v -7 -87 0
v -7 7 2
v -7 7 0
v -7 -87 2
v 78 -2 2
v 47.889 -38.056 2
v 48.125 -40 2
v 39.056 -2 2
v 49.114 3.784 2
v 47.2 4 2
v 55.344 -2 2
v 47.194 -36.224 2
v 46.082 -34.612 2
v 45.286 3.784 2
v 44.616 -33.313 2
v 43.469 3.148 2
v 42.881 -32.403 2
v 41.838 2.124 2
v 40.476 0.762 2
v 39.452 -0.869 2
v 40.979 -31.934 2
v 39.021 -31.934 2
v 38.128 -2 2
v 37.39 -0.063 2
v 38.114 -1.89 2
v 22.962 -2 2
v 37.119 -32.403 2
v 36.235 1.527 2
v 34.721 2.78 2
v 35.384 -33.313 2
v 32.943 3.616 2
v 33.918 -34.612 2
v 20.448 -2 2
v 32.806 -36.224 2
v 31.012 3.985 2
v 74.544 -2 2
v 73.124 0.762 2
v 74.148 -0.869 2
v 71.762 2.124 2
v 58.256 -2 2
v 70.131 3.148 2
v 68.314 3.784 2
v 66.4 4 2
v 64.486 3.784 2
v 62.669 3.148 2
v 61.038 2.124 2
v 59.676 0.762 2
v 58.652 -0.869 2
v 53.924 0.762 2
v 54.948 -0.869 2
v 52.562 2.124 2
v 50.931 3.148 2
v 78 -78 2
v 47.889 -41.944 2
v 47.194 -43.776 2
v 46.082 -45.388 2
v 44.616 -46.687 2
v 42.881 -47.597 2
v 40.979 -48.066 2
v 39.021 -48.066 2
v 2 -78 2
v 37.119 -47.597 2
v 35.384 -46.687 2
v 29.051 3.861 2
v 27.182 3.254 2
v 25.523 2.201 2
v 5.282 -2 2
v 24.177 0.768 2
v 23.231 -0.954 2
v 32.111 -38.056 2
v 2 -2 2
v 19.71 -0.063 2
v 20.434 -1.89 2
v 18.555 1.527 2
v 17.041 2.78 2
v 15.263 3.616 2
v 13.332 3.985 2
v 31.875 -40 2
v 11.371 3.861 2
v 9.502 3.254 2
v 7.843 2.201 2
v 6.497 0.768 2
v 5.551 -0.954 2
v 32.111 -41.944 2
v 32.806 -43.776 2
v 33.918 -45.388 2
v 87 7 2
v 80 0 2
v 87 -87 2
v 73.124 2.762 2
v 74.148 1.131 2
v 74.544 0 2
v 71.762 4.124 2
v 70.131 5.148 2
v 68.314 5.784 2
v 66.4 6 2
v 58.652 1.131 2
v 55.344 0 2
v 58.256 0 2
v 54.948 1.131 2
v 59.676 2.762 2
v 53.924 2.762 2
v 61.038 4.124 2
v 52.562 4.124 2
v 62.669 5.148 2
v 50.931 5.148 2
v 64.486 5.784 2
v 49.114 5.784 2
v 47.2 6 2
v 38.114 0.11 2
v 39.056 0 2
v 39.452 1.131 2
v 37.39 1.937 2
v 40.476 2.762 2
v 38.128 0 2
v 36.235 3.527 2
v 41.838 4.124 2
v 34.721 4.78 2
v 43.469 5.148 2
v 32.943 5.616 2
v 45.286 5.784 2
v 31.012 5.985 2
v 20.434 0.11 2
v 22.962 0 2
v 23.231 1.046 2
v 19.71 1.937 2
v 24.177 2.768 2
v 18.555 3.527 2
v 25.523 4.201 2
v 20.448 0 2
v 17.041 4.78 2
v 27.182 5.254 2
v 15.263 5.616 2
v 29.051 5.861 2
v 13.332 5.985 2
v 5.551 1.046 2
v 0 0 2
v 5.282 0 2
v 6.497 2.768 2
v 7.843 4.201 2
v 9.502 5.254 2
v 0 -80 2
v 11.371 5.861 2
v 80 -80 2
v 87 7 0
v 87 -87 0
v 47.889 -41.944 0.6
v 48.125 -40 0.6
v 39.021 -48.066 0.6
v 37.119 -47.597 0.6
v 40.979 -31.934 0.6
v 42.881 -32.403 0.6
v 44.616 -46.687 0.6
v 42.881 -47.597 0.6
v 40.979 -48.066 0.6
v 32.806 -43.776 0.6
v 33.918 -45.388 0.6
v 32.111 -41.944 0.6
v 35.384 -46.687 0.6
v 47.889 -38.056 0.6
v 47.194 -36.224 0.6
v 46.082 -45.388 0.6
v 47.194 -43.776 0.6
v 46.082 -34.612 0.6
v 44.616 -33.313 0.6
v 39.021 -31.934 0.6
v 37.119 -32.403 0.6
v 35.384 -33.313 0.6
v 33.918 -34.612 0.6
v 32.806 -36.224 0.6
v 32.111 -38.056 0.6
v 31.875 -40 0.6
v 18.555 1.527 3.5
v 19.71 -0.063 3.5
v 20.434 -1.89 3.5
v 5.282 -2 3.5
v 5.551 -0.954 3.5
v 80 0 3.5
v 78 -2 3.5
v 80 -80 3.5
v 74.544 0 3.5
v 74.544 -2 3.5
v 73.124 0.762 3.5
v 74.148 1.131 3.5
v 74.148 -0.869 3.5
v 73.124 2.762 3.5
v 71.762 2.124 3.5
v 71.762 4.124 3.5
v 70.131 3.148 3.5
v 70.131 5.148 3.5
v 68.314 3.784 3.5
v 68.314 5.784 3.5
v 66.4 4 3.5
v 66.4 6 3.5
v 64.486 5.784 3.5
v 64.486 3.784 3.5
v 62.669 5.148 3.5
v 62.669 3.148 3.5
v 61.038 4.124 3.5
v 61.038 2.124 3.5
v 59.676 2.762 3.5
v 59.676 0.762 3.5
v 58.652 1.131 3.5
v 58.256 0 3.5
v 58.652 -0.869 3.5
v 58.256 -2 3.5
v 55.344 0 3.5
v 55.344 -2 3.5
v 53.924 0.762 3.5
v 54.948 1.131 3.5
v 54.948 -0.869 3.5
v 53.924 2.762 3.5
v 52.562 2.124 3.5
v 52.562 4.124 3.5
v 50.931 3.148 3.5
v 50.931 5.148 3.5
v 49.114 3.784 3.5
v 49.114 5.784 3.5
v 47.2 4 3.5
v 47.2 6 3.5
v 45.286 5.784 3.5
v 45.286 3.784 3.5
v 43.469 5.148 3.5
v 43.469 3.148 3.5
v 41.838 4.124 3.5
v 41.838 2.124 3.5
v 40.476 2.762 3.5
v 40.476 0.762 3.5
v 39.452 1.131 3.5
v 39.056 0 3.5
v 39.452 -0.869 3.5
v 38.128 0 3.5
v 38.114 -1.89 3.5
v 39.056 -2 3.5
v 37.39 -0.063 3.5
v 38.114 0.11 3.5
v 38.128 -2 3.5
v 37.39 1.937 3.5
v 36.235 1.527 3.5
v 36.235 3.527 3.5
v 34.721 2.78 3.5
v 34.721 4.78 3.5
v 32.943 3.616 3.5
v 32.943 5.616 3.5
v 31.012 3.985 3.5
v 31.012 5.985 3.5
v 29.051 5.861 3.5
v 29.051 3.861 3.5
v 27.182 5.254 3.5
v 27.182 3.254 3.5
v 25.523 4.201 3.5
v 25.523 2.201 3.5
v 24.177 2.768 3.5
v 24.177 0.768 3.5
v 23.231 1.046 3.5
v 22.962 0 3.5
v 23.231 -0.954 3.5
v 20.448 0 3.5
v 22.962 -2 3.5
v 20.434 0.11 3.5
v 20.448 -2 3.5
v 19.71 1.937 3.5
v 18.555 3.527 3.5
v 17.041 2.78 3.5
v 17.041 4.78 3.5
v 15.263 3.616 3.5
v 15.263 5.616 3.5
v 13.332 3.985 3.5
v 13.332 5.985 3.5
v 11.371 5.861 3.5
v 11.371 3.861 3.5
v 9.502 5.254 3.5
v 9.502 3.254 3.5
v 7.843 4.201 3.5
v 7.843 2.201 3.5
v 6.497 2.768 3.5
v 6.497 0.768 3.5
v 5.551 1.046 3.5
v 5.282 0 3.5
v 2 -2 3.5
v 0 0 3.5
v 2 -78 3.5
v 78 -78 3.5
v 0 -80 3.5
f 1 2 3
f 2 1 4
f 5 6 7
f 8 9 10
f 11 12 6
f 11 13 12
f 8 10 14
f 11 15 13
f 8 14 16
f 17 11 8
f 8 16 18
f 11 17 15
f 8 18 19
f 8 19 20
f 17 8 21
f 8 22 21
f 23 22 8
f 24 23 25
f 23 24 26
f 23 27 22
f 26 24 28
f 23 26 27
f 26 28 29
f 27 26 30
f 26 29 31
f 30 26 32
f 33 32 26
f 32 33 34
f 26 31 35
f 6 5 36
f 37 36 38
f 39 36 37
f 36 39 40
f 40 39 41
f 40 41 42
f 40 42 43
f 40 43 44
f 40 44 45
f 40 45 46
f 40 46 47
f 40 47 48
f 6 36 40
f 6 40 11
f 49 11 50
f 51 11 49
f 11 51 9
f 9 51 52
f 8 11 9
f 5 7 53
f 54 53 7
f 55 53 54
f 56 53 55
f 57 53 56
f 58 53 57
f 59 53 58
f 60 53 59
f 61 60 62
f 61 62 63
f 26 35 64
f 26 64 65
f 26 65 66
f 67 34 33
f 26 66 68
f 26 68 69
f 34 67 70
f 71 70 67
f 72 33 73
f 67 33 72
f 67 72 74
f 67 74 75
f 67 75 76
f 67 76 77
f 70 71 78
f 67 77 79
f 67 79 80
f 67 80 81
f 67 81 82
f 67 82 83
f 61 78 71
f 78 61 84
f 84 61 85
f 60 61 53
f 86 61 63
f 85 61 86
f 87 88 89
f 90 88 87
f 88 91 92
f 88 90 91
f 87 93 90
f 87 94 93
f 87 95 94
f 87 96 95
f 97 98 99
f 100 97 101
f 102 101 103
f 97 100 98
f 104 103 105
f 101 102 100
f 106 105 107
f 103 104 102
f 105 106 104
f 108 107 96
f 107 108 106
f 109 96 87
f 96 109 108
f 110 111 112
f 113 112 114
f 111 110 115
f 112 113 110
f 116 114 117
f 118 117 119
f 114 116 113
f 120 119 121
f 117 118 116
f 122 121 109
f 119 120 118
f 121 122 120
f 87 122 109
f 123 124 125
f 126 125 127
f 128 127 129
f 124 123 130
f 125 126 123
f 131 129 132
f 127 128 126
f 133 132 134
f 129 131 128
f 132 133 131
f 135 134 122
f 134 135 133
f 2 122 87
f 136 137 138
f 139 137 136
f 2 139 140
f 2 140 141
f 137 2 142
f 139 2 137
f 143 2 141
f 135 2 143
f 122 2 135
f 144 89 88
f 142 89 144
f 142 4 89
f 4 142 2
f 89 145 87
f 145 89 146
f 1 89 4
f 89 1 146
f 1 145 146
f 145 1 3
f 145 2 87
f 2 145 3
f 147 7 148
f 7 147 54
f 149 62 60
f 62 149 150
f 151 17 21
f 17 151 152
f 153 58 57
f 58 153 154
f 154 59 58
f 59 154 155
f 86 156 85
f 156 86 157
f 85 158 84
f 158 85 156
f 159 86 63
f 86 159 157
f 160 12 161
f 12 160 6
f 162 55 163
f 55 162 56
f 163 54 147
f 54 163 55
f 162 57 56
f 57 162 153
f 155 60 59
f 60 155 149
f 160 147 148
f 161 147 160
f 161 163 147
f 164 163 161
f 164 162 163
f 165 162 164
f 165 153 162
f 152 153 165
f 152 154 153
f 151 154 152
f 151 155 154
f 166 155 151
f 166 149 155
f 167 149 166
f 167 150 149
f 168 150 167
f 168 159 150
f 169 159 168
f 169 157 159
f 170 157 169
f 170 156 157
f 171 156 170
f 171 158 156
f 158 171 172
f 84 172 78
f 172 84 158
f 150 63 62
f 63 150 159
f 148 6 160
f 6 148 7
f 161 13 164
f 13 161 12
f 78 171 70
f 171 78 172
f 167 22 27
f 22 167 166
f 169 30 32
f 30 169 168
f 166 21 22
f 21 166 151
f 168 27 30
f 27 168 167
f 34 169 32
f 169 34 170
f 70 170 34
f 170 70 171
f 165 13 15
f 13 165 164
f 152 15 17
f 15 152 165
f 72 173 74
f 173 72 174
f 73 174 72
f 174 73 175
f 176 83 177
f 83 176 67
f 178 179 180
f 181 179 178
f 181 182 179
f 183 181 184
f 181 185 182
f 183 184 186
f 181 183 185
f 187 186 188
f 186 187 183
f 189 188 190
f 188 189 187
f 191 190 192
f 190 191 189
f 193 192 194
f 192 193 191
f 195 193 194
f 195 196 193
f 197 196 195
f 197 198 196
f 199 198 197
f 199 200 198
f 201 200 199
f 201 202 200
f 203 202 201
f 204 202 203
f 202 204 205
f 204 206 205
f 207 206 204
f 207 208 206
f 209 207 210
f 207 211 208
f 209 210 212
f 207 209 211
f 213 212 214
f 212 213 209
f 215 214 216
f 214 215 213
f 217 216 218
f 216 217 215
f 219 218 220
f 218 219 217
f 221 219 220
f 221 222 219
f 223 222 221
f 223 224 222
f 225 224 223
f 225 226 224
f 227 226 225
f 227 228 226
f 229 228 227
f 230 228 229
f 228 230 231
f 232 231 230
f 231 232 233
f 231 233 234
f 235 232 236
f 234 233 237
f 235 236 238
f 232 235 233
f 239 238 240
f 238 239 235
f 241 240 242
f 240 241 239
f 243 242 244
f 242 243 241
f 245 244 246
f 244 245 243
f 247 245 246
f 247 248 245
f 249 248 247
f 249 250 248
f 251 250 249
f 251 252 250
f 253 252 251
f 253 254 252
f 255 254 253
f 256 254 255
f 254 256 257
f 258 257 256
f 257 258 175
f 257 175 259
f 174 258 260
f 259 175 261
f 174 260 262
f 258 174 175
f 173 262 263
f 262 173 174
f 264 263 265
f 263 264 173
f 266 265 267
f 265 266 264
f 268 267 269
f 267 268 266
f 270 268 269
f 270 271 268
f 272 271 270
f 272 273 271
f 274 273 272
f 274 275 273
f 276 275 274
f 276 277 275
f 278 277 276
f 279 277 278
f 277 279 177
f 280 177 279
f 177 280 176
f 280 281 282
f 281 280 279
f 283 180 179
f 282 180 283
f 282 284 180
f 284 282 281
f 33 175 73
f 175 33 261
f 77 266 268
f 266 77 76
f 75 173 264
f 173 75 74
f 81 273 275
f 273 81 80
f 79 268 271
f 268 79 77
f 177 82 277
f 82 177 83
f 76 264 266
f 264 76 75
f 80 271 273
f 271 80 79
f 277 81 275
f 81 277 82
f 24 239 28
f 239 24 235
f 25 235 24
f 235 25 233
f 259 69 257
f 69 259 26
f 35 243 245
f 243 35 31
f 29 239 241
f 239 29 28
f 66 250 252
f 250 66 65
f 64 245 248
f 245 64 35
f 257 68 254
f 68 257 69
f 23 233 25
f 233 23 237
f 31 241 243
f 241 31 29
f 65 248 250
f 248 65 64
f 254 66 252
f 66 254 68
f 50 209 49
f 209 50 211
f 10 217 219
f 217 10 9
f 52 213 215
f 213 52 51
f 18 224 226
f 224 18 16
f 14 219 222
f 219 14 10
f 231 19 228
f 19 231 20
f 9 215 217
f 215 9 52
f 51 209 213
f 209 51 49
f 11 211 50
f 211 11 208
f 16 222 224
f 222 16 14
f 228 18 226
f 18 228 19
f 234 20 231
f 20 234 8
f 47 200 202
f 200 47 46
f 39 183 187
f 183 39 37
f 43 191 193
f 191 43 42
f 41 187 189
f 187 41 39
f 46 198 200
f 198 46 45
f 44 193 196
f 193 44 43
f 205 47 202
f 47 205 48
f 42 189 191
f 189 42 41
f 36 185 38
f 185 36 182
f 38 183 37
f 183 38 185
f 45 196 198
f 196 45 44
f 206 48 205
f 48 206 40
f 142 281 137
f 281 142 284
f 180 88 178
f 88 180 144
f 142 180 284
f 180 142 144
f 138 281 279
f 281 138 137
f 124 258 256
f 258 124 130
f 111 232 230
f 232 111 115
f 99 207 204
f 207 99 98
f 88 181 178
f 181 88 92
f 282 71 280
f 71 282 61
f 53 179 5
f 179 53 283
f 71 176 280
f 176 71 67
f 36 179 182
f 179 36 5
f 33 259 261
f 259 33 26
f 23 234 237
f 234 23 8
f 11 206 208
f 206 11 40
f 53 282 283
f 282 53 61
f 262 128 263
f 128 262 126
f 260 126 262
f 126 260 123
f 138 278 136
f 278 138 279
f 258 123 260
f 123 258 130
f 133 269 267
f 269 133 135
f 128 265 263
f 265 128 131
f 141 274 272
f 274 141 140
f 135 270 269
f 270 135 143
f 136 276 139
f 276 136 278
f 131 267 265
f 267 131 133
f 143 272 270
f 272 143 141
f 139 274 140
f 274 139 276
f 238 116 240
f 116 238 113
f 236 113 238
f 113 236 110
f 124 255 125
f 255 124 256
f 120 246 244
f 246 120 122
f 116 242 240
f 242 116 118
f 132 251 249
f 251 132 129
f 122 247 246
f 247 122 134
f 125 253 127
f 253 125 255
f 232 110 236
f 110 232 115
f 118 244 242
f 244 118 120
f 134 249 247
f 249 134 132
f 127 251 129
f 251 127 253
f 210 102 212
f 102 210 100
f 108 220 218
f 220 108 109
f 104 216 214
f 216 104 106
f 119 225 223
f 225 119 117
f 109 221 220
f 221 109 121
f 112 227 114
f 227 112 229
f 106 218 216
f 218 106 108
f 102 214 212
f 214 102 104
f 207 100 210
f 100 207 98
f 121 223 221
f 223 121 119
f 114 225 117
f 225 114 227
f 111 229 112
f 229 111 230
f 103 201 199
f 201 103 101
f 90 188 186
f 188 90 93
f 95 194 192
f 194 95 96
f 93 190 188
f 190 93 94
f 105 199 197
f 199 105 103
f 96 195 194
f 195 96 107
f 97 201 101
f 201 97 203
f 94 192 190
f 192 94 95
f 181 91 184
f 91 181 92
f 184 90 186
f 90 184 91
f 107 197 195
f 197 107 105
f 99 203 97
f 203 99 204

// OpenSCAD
length = 75;
width = 75;
height = 2;
rimHeight = 1.5;
rimThickness = 2;
notchLength = 25;
//Based on washer size:
washerDiameter = 16.25;
washerHeight = 1.4;
rimPadding = 1;
totalHeight = height + rimHeight;

totalLength = length + rimThickness * 2 + rimPadding;
totalWidth = width + rimThickness * 2 + rimPadding;
extraLidForCircles = 7;

prestigeTokenDiameter = 15.18 + .5;
prestigeTokenOffset = 4;
prestigeTokenHeight = 2.19 + .5;

moneyTokenDiameter = 16.7 + .5;
moneyTokenOffset = 4;
moneyTokenHeight = 2.05 + .5;

chiefTokenDiameter = 31.5 + .5;
chiefTokenOffset = 4;
mirror([0, 1, 0])
union()
{
    difference() {
        translate([-extraLidForCircles, -extraLidForCircles, 0])
            cube([totalLength + 2 * extraLidForCircles, totalWidth + 2 * extraLidForCircles, height]);
        translate([totalLength/2, totalWidth/2, height - washerHeight])
            cylinder(washerHeight, d=washerDiameter);
    }
    
    difference() {
        translate([0, 0, height])
            cube([totalLength, totalWidth, rimHeight]);
        translate([rimThickness, rimThickness, height])
            cube([length + rimPadding, width + rimPadding, rimHeight]);
        LeftLengthCircles();
    }
    
    difference(){
        union()
        {
            translate([0, -rimThickness, 0])
                LeftLengthCircles();
        }
        translate([0, 0, height])
            cube([totalLength, totalWidth, rimHeight]);
        LeftLengthCircles();
    }
}


module LeftLengthCircles()
{
    spaceBetweenCircles = 2;
  
    translate(
        [
            spaceBetweenCircles + prestigeTokenDiameter/2 + rimThickness + rimPadding,  
            prestigeTokenDiameter/2 - prestigeTokenOffset,
            height
        ])
        cylinder(rimHeight, d=prestigeTokenDiameter);
    
    translate(
        [
            spaceBetweenCircles * 2 + prestigeTokenDiameter * 3/2 + rimThickness + rimPadding,  
            prestigeTokenDiameter/2 - prestigeTokenOffset,
            height
        ])
        cylinder(rimHeight, d=prestigeTokenDiameter);

    translate(
        [
            totalLength - (moneyTokenDiameter * 3/2 + spaceBetweenCircles * 2 + rimThickness + rimPadding),
            moneyTokenDiameter/2 - moneyTokenOffset,
            height
        ])
        cylinder(rimHeight, d=moneyTokenDiameter);

    translate(
        [
            totalLength - (moneyTokenDiameter/2 + spaceBetweenCircles + rimThickness + rimPadding),
            moneyTokenDiameter/2 - moneyTokenOffset,
            height
        ])
        cylinder(rimHeight, d=moneyTokenDiameter);       
    
}
